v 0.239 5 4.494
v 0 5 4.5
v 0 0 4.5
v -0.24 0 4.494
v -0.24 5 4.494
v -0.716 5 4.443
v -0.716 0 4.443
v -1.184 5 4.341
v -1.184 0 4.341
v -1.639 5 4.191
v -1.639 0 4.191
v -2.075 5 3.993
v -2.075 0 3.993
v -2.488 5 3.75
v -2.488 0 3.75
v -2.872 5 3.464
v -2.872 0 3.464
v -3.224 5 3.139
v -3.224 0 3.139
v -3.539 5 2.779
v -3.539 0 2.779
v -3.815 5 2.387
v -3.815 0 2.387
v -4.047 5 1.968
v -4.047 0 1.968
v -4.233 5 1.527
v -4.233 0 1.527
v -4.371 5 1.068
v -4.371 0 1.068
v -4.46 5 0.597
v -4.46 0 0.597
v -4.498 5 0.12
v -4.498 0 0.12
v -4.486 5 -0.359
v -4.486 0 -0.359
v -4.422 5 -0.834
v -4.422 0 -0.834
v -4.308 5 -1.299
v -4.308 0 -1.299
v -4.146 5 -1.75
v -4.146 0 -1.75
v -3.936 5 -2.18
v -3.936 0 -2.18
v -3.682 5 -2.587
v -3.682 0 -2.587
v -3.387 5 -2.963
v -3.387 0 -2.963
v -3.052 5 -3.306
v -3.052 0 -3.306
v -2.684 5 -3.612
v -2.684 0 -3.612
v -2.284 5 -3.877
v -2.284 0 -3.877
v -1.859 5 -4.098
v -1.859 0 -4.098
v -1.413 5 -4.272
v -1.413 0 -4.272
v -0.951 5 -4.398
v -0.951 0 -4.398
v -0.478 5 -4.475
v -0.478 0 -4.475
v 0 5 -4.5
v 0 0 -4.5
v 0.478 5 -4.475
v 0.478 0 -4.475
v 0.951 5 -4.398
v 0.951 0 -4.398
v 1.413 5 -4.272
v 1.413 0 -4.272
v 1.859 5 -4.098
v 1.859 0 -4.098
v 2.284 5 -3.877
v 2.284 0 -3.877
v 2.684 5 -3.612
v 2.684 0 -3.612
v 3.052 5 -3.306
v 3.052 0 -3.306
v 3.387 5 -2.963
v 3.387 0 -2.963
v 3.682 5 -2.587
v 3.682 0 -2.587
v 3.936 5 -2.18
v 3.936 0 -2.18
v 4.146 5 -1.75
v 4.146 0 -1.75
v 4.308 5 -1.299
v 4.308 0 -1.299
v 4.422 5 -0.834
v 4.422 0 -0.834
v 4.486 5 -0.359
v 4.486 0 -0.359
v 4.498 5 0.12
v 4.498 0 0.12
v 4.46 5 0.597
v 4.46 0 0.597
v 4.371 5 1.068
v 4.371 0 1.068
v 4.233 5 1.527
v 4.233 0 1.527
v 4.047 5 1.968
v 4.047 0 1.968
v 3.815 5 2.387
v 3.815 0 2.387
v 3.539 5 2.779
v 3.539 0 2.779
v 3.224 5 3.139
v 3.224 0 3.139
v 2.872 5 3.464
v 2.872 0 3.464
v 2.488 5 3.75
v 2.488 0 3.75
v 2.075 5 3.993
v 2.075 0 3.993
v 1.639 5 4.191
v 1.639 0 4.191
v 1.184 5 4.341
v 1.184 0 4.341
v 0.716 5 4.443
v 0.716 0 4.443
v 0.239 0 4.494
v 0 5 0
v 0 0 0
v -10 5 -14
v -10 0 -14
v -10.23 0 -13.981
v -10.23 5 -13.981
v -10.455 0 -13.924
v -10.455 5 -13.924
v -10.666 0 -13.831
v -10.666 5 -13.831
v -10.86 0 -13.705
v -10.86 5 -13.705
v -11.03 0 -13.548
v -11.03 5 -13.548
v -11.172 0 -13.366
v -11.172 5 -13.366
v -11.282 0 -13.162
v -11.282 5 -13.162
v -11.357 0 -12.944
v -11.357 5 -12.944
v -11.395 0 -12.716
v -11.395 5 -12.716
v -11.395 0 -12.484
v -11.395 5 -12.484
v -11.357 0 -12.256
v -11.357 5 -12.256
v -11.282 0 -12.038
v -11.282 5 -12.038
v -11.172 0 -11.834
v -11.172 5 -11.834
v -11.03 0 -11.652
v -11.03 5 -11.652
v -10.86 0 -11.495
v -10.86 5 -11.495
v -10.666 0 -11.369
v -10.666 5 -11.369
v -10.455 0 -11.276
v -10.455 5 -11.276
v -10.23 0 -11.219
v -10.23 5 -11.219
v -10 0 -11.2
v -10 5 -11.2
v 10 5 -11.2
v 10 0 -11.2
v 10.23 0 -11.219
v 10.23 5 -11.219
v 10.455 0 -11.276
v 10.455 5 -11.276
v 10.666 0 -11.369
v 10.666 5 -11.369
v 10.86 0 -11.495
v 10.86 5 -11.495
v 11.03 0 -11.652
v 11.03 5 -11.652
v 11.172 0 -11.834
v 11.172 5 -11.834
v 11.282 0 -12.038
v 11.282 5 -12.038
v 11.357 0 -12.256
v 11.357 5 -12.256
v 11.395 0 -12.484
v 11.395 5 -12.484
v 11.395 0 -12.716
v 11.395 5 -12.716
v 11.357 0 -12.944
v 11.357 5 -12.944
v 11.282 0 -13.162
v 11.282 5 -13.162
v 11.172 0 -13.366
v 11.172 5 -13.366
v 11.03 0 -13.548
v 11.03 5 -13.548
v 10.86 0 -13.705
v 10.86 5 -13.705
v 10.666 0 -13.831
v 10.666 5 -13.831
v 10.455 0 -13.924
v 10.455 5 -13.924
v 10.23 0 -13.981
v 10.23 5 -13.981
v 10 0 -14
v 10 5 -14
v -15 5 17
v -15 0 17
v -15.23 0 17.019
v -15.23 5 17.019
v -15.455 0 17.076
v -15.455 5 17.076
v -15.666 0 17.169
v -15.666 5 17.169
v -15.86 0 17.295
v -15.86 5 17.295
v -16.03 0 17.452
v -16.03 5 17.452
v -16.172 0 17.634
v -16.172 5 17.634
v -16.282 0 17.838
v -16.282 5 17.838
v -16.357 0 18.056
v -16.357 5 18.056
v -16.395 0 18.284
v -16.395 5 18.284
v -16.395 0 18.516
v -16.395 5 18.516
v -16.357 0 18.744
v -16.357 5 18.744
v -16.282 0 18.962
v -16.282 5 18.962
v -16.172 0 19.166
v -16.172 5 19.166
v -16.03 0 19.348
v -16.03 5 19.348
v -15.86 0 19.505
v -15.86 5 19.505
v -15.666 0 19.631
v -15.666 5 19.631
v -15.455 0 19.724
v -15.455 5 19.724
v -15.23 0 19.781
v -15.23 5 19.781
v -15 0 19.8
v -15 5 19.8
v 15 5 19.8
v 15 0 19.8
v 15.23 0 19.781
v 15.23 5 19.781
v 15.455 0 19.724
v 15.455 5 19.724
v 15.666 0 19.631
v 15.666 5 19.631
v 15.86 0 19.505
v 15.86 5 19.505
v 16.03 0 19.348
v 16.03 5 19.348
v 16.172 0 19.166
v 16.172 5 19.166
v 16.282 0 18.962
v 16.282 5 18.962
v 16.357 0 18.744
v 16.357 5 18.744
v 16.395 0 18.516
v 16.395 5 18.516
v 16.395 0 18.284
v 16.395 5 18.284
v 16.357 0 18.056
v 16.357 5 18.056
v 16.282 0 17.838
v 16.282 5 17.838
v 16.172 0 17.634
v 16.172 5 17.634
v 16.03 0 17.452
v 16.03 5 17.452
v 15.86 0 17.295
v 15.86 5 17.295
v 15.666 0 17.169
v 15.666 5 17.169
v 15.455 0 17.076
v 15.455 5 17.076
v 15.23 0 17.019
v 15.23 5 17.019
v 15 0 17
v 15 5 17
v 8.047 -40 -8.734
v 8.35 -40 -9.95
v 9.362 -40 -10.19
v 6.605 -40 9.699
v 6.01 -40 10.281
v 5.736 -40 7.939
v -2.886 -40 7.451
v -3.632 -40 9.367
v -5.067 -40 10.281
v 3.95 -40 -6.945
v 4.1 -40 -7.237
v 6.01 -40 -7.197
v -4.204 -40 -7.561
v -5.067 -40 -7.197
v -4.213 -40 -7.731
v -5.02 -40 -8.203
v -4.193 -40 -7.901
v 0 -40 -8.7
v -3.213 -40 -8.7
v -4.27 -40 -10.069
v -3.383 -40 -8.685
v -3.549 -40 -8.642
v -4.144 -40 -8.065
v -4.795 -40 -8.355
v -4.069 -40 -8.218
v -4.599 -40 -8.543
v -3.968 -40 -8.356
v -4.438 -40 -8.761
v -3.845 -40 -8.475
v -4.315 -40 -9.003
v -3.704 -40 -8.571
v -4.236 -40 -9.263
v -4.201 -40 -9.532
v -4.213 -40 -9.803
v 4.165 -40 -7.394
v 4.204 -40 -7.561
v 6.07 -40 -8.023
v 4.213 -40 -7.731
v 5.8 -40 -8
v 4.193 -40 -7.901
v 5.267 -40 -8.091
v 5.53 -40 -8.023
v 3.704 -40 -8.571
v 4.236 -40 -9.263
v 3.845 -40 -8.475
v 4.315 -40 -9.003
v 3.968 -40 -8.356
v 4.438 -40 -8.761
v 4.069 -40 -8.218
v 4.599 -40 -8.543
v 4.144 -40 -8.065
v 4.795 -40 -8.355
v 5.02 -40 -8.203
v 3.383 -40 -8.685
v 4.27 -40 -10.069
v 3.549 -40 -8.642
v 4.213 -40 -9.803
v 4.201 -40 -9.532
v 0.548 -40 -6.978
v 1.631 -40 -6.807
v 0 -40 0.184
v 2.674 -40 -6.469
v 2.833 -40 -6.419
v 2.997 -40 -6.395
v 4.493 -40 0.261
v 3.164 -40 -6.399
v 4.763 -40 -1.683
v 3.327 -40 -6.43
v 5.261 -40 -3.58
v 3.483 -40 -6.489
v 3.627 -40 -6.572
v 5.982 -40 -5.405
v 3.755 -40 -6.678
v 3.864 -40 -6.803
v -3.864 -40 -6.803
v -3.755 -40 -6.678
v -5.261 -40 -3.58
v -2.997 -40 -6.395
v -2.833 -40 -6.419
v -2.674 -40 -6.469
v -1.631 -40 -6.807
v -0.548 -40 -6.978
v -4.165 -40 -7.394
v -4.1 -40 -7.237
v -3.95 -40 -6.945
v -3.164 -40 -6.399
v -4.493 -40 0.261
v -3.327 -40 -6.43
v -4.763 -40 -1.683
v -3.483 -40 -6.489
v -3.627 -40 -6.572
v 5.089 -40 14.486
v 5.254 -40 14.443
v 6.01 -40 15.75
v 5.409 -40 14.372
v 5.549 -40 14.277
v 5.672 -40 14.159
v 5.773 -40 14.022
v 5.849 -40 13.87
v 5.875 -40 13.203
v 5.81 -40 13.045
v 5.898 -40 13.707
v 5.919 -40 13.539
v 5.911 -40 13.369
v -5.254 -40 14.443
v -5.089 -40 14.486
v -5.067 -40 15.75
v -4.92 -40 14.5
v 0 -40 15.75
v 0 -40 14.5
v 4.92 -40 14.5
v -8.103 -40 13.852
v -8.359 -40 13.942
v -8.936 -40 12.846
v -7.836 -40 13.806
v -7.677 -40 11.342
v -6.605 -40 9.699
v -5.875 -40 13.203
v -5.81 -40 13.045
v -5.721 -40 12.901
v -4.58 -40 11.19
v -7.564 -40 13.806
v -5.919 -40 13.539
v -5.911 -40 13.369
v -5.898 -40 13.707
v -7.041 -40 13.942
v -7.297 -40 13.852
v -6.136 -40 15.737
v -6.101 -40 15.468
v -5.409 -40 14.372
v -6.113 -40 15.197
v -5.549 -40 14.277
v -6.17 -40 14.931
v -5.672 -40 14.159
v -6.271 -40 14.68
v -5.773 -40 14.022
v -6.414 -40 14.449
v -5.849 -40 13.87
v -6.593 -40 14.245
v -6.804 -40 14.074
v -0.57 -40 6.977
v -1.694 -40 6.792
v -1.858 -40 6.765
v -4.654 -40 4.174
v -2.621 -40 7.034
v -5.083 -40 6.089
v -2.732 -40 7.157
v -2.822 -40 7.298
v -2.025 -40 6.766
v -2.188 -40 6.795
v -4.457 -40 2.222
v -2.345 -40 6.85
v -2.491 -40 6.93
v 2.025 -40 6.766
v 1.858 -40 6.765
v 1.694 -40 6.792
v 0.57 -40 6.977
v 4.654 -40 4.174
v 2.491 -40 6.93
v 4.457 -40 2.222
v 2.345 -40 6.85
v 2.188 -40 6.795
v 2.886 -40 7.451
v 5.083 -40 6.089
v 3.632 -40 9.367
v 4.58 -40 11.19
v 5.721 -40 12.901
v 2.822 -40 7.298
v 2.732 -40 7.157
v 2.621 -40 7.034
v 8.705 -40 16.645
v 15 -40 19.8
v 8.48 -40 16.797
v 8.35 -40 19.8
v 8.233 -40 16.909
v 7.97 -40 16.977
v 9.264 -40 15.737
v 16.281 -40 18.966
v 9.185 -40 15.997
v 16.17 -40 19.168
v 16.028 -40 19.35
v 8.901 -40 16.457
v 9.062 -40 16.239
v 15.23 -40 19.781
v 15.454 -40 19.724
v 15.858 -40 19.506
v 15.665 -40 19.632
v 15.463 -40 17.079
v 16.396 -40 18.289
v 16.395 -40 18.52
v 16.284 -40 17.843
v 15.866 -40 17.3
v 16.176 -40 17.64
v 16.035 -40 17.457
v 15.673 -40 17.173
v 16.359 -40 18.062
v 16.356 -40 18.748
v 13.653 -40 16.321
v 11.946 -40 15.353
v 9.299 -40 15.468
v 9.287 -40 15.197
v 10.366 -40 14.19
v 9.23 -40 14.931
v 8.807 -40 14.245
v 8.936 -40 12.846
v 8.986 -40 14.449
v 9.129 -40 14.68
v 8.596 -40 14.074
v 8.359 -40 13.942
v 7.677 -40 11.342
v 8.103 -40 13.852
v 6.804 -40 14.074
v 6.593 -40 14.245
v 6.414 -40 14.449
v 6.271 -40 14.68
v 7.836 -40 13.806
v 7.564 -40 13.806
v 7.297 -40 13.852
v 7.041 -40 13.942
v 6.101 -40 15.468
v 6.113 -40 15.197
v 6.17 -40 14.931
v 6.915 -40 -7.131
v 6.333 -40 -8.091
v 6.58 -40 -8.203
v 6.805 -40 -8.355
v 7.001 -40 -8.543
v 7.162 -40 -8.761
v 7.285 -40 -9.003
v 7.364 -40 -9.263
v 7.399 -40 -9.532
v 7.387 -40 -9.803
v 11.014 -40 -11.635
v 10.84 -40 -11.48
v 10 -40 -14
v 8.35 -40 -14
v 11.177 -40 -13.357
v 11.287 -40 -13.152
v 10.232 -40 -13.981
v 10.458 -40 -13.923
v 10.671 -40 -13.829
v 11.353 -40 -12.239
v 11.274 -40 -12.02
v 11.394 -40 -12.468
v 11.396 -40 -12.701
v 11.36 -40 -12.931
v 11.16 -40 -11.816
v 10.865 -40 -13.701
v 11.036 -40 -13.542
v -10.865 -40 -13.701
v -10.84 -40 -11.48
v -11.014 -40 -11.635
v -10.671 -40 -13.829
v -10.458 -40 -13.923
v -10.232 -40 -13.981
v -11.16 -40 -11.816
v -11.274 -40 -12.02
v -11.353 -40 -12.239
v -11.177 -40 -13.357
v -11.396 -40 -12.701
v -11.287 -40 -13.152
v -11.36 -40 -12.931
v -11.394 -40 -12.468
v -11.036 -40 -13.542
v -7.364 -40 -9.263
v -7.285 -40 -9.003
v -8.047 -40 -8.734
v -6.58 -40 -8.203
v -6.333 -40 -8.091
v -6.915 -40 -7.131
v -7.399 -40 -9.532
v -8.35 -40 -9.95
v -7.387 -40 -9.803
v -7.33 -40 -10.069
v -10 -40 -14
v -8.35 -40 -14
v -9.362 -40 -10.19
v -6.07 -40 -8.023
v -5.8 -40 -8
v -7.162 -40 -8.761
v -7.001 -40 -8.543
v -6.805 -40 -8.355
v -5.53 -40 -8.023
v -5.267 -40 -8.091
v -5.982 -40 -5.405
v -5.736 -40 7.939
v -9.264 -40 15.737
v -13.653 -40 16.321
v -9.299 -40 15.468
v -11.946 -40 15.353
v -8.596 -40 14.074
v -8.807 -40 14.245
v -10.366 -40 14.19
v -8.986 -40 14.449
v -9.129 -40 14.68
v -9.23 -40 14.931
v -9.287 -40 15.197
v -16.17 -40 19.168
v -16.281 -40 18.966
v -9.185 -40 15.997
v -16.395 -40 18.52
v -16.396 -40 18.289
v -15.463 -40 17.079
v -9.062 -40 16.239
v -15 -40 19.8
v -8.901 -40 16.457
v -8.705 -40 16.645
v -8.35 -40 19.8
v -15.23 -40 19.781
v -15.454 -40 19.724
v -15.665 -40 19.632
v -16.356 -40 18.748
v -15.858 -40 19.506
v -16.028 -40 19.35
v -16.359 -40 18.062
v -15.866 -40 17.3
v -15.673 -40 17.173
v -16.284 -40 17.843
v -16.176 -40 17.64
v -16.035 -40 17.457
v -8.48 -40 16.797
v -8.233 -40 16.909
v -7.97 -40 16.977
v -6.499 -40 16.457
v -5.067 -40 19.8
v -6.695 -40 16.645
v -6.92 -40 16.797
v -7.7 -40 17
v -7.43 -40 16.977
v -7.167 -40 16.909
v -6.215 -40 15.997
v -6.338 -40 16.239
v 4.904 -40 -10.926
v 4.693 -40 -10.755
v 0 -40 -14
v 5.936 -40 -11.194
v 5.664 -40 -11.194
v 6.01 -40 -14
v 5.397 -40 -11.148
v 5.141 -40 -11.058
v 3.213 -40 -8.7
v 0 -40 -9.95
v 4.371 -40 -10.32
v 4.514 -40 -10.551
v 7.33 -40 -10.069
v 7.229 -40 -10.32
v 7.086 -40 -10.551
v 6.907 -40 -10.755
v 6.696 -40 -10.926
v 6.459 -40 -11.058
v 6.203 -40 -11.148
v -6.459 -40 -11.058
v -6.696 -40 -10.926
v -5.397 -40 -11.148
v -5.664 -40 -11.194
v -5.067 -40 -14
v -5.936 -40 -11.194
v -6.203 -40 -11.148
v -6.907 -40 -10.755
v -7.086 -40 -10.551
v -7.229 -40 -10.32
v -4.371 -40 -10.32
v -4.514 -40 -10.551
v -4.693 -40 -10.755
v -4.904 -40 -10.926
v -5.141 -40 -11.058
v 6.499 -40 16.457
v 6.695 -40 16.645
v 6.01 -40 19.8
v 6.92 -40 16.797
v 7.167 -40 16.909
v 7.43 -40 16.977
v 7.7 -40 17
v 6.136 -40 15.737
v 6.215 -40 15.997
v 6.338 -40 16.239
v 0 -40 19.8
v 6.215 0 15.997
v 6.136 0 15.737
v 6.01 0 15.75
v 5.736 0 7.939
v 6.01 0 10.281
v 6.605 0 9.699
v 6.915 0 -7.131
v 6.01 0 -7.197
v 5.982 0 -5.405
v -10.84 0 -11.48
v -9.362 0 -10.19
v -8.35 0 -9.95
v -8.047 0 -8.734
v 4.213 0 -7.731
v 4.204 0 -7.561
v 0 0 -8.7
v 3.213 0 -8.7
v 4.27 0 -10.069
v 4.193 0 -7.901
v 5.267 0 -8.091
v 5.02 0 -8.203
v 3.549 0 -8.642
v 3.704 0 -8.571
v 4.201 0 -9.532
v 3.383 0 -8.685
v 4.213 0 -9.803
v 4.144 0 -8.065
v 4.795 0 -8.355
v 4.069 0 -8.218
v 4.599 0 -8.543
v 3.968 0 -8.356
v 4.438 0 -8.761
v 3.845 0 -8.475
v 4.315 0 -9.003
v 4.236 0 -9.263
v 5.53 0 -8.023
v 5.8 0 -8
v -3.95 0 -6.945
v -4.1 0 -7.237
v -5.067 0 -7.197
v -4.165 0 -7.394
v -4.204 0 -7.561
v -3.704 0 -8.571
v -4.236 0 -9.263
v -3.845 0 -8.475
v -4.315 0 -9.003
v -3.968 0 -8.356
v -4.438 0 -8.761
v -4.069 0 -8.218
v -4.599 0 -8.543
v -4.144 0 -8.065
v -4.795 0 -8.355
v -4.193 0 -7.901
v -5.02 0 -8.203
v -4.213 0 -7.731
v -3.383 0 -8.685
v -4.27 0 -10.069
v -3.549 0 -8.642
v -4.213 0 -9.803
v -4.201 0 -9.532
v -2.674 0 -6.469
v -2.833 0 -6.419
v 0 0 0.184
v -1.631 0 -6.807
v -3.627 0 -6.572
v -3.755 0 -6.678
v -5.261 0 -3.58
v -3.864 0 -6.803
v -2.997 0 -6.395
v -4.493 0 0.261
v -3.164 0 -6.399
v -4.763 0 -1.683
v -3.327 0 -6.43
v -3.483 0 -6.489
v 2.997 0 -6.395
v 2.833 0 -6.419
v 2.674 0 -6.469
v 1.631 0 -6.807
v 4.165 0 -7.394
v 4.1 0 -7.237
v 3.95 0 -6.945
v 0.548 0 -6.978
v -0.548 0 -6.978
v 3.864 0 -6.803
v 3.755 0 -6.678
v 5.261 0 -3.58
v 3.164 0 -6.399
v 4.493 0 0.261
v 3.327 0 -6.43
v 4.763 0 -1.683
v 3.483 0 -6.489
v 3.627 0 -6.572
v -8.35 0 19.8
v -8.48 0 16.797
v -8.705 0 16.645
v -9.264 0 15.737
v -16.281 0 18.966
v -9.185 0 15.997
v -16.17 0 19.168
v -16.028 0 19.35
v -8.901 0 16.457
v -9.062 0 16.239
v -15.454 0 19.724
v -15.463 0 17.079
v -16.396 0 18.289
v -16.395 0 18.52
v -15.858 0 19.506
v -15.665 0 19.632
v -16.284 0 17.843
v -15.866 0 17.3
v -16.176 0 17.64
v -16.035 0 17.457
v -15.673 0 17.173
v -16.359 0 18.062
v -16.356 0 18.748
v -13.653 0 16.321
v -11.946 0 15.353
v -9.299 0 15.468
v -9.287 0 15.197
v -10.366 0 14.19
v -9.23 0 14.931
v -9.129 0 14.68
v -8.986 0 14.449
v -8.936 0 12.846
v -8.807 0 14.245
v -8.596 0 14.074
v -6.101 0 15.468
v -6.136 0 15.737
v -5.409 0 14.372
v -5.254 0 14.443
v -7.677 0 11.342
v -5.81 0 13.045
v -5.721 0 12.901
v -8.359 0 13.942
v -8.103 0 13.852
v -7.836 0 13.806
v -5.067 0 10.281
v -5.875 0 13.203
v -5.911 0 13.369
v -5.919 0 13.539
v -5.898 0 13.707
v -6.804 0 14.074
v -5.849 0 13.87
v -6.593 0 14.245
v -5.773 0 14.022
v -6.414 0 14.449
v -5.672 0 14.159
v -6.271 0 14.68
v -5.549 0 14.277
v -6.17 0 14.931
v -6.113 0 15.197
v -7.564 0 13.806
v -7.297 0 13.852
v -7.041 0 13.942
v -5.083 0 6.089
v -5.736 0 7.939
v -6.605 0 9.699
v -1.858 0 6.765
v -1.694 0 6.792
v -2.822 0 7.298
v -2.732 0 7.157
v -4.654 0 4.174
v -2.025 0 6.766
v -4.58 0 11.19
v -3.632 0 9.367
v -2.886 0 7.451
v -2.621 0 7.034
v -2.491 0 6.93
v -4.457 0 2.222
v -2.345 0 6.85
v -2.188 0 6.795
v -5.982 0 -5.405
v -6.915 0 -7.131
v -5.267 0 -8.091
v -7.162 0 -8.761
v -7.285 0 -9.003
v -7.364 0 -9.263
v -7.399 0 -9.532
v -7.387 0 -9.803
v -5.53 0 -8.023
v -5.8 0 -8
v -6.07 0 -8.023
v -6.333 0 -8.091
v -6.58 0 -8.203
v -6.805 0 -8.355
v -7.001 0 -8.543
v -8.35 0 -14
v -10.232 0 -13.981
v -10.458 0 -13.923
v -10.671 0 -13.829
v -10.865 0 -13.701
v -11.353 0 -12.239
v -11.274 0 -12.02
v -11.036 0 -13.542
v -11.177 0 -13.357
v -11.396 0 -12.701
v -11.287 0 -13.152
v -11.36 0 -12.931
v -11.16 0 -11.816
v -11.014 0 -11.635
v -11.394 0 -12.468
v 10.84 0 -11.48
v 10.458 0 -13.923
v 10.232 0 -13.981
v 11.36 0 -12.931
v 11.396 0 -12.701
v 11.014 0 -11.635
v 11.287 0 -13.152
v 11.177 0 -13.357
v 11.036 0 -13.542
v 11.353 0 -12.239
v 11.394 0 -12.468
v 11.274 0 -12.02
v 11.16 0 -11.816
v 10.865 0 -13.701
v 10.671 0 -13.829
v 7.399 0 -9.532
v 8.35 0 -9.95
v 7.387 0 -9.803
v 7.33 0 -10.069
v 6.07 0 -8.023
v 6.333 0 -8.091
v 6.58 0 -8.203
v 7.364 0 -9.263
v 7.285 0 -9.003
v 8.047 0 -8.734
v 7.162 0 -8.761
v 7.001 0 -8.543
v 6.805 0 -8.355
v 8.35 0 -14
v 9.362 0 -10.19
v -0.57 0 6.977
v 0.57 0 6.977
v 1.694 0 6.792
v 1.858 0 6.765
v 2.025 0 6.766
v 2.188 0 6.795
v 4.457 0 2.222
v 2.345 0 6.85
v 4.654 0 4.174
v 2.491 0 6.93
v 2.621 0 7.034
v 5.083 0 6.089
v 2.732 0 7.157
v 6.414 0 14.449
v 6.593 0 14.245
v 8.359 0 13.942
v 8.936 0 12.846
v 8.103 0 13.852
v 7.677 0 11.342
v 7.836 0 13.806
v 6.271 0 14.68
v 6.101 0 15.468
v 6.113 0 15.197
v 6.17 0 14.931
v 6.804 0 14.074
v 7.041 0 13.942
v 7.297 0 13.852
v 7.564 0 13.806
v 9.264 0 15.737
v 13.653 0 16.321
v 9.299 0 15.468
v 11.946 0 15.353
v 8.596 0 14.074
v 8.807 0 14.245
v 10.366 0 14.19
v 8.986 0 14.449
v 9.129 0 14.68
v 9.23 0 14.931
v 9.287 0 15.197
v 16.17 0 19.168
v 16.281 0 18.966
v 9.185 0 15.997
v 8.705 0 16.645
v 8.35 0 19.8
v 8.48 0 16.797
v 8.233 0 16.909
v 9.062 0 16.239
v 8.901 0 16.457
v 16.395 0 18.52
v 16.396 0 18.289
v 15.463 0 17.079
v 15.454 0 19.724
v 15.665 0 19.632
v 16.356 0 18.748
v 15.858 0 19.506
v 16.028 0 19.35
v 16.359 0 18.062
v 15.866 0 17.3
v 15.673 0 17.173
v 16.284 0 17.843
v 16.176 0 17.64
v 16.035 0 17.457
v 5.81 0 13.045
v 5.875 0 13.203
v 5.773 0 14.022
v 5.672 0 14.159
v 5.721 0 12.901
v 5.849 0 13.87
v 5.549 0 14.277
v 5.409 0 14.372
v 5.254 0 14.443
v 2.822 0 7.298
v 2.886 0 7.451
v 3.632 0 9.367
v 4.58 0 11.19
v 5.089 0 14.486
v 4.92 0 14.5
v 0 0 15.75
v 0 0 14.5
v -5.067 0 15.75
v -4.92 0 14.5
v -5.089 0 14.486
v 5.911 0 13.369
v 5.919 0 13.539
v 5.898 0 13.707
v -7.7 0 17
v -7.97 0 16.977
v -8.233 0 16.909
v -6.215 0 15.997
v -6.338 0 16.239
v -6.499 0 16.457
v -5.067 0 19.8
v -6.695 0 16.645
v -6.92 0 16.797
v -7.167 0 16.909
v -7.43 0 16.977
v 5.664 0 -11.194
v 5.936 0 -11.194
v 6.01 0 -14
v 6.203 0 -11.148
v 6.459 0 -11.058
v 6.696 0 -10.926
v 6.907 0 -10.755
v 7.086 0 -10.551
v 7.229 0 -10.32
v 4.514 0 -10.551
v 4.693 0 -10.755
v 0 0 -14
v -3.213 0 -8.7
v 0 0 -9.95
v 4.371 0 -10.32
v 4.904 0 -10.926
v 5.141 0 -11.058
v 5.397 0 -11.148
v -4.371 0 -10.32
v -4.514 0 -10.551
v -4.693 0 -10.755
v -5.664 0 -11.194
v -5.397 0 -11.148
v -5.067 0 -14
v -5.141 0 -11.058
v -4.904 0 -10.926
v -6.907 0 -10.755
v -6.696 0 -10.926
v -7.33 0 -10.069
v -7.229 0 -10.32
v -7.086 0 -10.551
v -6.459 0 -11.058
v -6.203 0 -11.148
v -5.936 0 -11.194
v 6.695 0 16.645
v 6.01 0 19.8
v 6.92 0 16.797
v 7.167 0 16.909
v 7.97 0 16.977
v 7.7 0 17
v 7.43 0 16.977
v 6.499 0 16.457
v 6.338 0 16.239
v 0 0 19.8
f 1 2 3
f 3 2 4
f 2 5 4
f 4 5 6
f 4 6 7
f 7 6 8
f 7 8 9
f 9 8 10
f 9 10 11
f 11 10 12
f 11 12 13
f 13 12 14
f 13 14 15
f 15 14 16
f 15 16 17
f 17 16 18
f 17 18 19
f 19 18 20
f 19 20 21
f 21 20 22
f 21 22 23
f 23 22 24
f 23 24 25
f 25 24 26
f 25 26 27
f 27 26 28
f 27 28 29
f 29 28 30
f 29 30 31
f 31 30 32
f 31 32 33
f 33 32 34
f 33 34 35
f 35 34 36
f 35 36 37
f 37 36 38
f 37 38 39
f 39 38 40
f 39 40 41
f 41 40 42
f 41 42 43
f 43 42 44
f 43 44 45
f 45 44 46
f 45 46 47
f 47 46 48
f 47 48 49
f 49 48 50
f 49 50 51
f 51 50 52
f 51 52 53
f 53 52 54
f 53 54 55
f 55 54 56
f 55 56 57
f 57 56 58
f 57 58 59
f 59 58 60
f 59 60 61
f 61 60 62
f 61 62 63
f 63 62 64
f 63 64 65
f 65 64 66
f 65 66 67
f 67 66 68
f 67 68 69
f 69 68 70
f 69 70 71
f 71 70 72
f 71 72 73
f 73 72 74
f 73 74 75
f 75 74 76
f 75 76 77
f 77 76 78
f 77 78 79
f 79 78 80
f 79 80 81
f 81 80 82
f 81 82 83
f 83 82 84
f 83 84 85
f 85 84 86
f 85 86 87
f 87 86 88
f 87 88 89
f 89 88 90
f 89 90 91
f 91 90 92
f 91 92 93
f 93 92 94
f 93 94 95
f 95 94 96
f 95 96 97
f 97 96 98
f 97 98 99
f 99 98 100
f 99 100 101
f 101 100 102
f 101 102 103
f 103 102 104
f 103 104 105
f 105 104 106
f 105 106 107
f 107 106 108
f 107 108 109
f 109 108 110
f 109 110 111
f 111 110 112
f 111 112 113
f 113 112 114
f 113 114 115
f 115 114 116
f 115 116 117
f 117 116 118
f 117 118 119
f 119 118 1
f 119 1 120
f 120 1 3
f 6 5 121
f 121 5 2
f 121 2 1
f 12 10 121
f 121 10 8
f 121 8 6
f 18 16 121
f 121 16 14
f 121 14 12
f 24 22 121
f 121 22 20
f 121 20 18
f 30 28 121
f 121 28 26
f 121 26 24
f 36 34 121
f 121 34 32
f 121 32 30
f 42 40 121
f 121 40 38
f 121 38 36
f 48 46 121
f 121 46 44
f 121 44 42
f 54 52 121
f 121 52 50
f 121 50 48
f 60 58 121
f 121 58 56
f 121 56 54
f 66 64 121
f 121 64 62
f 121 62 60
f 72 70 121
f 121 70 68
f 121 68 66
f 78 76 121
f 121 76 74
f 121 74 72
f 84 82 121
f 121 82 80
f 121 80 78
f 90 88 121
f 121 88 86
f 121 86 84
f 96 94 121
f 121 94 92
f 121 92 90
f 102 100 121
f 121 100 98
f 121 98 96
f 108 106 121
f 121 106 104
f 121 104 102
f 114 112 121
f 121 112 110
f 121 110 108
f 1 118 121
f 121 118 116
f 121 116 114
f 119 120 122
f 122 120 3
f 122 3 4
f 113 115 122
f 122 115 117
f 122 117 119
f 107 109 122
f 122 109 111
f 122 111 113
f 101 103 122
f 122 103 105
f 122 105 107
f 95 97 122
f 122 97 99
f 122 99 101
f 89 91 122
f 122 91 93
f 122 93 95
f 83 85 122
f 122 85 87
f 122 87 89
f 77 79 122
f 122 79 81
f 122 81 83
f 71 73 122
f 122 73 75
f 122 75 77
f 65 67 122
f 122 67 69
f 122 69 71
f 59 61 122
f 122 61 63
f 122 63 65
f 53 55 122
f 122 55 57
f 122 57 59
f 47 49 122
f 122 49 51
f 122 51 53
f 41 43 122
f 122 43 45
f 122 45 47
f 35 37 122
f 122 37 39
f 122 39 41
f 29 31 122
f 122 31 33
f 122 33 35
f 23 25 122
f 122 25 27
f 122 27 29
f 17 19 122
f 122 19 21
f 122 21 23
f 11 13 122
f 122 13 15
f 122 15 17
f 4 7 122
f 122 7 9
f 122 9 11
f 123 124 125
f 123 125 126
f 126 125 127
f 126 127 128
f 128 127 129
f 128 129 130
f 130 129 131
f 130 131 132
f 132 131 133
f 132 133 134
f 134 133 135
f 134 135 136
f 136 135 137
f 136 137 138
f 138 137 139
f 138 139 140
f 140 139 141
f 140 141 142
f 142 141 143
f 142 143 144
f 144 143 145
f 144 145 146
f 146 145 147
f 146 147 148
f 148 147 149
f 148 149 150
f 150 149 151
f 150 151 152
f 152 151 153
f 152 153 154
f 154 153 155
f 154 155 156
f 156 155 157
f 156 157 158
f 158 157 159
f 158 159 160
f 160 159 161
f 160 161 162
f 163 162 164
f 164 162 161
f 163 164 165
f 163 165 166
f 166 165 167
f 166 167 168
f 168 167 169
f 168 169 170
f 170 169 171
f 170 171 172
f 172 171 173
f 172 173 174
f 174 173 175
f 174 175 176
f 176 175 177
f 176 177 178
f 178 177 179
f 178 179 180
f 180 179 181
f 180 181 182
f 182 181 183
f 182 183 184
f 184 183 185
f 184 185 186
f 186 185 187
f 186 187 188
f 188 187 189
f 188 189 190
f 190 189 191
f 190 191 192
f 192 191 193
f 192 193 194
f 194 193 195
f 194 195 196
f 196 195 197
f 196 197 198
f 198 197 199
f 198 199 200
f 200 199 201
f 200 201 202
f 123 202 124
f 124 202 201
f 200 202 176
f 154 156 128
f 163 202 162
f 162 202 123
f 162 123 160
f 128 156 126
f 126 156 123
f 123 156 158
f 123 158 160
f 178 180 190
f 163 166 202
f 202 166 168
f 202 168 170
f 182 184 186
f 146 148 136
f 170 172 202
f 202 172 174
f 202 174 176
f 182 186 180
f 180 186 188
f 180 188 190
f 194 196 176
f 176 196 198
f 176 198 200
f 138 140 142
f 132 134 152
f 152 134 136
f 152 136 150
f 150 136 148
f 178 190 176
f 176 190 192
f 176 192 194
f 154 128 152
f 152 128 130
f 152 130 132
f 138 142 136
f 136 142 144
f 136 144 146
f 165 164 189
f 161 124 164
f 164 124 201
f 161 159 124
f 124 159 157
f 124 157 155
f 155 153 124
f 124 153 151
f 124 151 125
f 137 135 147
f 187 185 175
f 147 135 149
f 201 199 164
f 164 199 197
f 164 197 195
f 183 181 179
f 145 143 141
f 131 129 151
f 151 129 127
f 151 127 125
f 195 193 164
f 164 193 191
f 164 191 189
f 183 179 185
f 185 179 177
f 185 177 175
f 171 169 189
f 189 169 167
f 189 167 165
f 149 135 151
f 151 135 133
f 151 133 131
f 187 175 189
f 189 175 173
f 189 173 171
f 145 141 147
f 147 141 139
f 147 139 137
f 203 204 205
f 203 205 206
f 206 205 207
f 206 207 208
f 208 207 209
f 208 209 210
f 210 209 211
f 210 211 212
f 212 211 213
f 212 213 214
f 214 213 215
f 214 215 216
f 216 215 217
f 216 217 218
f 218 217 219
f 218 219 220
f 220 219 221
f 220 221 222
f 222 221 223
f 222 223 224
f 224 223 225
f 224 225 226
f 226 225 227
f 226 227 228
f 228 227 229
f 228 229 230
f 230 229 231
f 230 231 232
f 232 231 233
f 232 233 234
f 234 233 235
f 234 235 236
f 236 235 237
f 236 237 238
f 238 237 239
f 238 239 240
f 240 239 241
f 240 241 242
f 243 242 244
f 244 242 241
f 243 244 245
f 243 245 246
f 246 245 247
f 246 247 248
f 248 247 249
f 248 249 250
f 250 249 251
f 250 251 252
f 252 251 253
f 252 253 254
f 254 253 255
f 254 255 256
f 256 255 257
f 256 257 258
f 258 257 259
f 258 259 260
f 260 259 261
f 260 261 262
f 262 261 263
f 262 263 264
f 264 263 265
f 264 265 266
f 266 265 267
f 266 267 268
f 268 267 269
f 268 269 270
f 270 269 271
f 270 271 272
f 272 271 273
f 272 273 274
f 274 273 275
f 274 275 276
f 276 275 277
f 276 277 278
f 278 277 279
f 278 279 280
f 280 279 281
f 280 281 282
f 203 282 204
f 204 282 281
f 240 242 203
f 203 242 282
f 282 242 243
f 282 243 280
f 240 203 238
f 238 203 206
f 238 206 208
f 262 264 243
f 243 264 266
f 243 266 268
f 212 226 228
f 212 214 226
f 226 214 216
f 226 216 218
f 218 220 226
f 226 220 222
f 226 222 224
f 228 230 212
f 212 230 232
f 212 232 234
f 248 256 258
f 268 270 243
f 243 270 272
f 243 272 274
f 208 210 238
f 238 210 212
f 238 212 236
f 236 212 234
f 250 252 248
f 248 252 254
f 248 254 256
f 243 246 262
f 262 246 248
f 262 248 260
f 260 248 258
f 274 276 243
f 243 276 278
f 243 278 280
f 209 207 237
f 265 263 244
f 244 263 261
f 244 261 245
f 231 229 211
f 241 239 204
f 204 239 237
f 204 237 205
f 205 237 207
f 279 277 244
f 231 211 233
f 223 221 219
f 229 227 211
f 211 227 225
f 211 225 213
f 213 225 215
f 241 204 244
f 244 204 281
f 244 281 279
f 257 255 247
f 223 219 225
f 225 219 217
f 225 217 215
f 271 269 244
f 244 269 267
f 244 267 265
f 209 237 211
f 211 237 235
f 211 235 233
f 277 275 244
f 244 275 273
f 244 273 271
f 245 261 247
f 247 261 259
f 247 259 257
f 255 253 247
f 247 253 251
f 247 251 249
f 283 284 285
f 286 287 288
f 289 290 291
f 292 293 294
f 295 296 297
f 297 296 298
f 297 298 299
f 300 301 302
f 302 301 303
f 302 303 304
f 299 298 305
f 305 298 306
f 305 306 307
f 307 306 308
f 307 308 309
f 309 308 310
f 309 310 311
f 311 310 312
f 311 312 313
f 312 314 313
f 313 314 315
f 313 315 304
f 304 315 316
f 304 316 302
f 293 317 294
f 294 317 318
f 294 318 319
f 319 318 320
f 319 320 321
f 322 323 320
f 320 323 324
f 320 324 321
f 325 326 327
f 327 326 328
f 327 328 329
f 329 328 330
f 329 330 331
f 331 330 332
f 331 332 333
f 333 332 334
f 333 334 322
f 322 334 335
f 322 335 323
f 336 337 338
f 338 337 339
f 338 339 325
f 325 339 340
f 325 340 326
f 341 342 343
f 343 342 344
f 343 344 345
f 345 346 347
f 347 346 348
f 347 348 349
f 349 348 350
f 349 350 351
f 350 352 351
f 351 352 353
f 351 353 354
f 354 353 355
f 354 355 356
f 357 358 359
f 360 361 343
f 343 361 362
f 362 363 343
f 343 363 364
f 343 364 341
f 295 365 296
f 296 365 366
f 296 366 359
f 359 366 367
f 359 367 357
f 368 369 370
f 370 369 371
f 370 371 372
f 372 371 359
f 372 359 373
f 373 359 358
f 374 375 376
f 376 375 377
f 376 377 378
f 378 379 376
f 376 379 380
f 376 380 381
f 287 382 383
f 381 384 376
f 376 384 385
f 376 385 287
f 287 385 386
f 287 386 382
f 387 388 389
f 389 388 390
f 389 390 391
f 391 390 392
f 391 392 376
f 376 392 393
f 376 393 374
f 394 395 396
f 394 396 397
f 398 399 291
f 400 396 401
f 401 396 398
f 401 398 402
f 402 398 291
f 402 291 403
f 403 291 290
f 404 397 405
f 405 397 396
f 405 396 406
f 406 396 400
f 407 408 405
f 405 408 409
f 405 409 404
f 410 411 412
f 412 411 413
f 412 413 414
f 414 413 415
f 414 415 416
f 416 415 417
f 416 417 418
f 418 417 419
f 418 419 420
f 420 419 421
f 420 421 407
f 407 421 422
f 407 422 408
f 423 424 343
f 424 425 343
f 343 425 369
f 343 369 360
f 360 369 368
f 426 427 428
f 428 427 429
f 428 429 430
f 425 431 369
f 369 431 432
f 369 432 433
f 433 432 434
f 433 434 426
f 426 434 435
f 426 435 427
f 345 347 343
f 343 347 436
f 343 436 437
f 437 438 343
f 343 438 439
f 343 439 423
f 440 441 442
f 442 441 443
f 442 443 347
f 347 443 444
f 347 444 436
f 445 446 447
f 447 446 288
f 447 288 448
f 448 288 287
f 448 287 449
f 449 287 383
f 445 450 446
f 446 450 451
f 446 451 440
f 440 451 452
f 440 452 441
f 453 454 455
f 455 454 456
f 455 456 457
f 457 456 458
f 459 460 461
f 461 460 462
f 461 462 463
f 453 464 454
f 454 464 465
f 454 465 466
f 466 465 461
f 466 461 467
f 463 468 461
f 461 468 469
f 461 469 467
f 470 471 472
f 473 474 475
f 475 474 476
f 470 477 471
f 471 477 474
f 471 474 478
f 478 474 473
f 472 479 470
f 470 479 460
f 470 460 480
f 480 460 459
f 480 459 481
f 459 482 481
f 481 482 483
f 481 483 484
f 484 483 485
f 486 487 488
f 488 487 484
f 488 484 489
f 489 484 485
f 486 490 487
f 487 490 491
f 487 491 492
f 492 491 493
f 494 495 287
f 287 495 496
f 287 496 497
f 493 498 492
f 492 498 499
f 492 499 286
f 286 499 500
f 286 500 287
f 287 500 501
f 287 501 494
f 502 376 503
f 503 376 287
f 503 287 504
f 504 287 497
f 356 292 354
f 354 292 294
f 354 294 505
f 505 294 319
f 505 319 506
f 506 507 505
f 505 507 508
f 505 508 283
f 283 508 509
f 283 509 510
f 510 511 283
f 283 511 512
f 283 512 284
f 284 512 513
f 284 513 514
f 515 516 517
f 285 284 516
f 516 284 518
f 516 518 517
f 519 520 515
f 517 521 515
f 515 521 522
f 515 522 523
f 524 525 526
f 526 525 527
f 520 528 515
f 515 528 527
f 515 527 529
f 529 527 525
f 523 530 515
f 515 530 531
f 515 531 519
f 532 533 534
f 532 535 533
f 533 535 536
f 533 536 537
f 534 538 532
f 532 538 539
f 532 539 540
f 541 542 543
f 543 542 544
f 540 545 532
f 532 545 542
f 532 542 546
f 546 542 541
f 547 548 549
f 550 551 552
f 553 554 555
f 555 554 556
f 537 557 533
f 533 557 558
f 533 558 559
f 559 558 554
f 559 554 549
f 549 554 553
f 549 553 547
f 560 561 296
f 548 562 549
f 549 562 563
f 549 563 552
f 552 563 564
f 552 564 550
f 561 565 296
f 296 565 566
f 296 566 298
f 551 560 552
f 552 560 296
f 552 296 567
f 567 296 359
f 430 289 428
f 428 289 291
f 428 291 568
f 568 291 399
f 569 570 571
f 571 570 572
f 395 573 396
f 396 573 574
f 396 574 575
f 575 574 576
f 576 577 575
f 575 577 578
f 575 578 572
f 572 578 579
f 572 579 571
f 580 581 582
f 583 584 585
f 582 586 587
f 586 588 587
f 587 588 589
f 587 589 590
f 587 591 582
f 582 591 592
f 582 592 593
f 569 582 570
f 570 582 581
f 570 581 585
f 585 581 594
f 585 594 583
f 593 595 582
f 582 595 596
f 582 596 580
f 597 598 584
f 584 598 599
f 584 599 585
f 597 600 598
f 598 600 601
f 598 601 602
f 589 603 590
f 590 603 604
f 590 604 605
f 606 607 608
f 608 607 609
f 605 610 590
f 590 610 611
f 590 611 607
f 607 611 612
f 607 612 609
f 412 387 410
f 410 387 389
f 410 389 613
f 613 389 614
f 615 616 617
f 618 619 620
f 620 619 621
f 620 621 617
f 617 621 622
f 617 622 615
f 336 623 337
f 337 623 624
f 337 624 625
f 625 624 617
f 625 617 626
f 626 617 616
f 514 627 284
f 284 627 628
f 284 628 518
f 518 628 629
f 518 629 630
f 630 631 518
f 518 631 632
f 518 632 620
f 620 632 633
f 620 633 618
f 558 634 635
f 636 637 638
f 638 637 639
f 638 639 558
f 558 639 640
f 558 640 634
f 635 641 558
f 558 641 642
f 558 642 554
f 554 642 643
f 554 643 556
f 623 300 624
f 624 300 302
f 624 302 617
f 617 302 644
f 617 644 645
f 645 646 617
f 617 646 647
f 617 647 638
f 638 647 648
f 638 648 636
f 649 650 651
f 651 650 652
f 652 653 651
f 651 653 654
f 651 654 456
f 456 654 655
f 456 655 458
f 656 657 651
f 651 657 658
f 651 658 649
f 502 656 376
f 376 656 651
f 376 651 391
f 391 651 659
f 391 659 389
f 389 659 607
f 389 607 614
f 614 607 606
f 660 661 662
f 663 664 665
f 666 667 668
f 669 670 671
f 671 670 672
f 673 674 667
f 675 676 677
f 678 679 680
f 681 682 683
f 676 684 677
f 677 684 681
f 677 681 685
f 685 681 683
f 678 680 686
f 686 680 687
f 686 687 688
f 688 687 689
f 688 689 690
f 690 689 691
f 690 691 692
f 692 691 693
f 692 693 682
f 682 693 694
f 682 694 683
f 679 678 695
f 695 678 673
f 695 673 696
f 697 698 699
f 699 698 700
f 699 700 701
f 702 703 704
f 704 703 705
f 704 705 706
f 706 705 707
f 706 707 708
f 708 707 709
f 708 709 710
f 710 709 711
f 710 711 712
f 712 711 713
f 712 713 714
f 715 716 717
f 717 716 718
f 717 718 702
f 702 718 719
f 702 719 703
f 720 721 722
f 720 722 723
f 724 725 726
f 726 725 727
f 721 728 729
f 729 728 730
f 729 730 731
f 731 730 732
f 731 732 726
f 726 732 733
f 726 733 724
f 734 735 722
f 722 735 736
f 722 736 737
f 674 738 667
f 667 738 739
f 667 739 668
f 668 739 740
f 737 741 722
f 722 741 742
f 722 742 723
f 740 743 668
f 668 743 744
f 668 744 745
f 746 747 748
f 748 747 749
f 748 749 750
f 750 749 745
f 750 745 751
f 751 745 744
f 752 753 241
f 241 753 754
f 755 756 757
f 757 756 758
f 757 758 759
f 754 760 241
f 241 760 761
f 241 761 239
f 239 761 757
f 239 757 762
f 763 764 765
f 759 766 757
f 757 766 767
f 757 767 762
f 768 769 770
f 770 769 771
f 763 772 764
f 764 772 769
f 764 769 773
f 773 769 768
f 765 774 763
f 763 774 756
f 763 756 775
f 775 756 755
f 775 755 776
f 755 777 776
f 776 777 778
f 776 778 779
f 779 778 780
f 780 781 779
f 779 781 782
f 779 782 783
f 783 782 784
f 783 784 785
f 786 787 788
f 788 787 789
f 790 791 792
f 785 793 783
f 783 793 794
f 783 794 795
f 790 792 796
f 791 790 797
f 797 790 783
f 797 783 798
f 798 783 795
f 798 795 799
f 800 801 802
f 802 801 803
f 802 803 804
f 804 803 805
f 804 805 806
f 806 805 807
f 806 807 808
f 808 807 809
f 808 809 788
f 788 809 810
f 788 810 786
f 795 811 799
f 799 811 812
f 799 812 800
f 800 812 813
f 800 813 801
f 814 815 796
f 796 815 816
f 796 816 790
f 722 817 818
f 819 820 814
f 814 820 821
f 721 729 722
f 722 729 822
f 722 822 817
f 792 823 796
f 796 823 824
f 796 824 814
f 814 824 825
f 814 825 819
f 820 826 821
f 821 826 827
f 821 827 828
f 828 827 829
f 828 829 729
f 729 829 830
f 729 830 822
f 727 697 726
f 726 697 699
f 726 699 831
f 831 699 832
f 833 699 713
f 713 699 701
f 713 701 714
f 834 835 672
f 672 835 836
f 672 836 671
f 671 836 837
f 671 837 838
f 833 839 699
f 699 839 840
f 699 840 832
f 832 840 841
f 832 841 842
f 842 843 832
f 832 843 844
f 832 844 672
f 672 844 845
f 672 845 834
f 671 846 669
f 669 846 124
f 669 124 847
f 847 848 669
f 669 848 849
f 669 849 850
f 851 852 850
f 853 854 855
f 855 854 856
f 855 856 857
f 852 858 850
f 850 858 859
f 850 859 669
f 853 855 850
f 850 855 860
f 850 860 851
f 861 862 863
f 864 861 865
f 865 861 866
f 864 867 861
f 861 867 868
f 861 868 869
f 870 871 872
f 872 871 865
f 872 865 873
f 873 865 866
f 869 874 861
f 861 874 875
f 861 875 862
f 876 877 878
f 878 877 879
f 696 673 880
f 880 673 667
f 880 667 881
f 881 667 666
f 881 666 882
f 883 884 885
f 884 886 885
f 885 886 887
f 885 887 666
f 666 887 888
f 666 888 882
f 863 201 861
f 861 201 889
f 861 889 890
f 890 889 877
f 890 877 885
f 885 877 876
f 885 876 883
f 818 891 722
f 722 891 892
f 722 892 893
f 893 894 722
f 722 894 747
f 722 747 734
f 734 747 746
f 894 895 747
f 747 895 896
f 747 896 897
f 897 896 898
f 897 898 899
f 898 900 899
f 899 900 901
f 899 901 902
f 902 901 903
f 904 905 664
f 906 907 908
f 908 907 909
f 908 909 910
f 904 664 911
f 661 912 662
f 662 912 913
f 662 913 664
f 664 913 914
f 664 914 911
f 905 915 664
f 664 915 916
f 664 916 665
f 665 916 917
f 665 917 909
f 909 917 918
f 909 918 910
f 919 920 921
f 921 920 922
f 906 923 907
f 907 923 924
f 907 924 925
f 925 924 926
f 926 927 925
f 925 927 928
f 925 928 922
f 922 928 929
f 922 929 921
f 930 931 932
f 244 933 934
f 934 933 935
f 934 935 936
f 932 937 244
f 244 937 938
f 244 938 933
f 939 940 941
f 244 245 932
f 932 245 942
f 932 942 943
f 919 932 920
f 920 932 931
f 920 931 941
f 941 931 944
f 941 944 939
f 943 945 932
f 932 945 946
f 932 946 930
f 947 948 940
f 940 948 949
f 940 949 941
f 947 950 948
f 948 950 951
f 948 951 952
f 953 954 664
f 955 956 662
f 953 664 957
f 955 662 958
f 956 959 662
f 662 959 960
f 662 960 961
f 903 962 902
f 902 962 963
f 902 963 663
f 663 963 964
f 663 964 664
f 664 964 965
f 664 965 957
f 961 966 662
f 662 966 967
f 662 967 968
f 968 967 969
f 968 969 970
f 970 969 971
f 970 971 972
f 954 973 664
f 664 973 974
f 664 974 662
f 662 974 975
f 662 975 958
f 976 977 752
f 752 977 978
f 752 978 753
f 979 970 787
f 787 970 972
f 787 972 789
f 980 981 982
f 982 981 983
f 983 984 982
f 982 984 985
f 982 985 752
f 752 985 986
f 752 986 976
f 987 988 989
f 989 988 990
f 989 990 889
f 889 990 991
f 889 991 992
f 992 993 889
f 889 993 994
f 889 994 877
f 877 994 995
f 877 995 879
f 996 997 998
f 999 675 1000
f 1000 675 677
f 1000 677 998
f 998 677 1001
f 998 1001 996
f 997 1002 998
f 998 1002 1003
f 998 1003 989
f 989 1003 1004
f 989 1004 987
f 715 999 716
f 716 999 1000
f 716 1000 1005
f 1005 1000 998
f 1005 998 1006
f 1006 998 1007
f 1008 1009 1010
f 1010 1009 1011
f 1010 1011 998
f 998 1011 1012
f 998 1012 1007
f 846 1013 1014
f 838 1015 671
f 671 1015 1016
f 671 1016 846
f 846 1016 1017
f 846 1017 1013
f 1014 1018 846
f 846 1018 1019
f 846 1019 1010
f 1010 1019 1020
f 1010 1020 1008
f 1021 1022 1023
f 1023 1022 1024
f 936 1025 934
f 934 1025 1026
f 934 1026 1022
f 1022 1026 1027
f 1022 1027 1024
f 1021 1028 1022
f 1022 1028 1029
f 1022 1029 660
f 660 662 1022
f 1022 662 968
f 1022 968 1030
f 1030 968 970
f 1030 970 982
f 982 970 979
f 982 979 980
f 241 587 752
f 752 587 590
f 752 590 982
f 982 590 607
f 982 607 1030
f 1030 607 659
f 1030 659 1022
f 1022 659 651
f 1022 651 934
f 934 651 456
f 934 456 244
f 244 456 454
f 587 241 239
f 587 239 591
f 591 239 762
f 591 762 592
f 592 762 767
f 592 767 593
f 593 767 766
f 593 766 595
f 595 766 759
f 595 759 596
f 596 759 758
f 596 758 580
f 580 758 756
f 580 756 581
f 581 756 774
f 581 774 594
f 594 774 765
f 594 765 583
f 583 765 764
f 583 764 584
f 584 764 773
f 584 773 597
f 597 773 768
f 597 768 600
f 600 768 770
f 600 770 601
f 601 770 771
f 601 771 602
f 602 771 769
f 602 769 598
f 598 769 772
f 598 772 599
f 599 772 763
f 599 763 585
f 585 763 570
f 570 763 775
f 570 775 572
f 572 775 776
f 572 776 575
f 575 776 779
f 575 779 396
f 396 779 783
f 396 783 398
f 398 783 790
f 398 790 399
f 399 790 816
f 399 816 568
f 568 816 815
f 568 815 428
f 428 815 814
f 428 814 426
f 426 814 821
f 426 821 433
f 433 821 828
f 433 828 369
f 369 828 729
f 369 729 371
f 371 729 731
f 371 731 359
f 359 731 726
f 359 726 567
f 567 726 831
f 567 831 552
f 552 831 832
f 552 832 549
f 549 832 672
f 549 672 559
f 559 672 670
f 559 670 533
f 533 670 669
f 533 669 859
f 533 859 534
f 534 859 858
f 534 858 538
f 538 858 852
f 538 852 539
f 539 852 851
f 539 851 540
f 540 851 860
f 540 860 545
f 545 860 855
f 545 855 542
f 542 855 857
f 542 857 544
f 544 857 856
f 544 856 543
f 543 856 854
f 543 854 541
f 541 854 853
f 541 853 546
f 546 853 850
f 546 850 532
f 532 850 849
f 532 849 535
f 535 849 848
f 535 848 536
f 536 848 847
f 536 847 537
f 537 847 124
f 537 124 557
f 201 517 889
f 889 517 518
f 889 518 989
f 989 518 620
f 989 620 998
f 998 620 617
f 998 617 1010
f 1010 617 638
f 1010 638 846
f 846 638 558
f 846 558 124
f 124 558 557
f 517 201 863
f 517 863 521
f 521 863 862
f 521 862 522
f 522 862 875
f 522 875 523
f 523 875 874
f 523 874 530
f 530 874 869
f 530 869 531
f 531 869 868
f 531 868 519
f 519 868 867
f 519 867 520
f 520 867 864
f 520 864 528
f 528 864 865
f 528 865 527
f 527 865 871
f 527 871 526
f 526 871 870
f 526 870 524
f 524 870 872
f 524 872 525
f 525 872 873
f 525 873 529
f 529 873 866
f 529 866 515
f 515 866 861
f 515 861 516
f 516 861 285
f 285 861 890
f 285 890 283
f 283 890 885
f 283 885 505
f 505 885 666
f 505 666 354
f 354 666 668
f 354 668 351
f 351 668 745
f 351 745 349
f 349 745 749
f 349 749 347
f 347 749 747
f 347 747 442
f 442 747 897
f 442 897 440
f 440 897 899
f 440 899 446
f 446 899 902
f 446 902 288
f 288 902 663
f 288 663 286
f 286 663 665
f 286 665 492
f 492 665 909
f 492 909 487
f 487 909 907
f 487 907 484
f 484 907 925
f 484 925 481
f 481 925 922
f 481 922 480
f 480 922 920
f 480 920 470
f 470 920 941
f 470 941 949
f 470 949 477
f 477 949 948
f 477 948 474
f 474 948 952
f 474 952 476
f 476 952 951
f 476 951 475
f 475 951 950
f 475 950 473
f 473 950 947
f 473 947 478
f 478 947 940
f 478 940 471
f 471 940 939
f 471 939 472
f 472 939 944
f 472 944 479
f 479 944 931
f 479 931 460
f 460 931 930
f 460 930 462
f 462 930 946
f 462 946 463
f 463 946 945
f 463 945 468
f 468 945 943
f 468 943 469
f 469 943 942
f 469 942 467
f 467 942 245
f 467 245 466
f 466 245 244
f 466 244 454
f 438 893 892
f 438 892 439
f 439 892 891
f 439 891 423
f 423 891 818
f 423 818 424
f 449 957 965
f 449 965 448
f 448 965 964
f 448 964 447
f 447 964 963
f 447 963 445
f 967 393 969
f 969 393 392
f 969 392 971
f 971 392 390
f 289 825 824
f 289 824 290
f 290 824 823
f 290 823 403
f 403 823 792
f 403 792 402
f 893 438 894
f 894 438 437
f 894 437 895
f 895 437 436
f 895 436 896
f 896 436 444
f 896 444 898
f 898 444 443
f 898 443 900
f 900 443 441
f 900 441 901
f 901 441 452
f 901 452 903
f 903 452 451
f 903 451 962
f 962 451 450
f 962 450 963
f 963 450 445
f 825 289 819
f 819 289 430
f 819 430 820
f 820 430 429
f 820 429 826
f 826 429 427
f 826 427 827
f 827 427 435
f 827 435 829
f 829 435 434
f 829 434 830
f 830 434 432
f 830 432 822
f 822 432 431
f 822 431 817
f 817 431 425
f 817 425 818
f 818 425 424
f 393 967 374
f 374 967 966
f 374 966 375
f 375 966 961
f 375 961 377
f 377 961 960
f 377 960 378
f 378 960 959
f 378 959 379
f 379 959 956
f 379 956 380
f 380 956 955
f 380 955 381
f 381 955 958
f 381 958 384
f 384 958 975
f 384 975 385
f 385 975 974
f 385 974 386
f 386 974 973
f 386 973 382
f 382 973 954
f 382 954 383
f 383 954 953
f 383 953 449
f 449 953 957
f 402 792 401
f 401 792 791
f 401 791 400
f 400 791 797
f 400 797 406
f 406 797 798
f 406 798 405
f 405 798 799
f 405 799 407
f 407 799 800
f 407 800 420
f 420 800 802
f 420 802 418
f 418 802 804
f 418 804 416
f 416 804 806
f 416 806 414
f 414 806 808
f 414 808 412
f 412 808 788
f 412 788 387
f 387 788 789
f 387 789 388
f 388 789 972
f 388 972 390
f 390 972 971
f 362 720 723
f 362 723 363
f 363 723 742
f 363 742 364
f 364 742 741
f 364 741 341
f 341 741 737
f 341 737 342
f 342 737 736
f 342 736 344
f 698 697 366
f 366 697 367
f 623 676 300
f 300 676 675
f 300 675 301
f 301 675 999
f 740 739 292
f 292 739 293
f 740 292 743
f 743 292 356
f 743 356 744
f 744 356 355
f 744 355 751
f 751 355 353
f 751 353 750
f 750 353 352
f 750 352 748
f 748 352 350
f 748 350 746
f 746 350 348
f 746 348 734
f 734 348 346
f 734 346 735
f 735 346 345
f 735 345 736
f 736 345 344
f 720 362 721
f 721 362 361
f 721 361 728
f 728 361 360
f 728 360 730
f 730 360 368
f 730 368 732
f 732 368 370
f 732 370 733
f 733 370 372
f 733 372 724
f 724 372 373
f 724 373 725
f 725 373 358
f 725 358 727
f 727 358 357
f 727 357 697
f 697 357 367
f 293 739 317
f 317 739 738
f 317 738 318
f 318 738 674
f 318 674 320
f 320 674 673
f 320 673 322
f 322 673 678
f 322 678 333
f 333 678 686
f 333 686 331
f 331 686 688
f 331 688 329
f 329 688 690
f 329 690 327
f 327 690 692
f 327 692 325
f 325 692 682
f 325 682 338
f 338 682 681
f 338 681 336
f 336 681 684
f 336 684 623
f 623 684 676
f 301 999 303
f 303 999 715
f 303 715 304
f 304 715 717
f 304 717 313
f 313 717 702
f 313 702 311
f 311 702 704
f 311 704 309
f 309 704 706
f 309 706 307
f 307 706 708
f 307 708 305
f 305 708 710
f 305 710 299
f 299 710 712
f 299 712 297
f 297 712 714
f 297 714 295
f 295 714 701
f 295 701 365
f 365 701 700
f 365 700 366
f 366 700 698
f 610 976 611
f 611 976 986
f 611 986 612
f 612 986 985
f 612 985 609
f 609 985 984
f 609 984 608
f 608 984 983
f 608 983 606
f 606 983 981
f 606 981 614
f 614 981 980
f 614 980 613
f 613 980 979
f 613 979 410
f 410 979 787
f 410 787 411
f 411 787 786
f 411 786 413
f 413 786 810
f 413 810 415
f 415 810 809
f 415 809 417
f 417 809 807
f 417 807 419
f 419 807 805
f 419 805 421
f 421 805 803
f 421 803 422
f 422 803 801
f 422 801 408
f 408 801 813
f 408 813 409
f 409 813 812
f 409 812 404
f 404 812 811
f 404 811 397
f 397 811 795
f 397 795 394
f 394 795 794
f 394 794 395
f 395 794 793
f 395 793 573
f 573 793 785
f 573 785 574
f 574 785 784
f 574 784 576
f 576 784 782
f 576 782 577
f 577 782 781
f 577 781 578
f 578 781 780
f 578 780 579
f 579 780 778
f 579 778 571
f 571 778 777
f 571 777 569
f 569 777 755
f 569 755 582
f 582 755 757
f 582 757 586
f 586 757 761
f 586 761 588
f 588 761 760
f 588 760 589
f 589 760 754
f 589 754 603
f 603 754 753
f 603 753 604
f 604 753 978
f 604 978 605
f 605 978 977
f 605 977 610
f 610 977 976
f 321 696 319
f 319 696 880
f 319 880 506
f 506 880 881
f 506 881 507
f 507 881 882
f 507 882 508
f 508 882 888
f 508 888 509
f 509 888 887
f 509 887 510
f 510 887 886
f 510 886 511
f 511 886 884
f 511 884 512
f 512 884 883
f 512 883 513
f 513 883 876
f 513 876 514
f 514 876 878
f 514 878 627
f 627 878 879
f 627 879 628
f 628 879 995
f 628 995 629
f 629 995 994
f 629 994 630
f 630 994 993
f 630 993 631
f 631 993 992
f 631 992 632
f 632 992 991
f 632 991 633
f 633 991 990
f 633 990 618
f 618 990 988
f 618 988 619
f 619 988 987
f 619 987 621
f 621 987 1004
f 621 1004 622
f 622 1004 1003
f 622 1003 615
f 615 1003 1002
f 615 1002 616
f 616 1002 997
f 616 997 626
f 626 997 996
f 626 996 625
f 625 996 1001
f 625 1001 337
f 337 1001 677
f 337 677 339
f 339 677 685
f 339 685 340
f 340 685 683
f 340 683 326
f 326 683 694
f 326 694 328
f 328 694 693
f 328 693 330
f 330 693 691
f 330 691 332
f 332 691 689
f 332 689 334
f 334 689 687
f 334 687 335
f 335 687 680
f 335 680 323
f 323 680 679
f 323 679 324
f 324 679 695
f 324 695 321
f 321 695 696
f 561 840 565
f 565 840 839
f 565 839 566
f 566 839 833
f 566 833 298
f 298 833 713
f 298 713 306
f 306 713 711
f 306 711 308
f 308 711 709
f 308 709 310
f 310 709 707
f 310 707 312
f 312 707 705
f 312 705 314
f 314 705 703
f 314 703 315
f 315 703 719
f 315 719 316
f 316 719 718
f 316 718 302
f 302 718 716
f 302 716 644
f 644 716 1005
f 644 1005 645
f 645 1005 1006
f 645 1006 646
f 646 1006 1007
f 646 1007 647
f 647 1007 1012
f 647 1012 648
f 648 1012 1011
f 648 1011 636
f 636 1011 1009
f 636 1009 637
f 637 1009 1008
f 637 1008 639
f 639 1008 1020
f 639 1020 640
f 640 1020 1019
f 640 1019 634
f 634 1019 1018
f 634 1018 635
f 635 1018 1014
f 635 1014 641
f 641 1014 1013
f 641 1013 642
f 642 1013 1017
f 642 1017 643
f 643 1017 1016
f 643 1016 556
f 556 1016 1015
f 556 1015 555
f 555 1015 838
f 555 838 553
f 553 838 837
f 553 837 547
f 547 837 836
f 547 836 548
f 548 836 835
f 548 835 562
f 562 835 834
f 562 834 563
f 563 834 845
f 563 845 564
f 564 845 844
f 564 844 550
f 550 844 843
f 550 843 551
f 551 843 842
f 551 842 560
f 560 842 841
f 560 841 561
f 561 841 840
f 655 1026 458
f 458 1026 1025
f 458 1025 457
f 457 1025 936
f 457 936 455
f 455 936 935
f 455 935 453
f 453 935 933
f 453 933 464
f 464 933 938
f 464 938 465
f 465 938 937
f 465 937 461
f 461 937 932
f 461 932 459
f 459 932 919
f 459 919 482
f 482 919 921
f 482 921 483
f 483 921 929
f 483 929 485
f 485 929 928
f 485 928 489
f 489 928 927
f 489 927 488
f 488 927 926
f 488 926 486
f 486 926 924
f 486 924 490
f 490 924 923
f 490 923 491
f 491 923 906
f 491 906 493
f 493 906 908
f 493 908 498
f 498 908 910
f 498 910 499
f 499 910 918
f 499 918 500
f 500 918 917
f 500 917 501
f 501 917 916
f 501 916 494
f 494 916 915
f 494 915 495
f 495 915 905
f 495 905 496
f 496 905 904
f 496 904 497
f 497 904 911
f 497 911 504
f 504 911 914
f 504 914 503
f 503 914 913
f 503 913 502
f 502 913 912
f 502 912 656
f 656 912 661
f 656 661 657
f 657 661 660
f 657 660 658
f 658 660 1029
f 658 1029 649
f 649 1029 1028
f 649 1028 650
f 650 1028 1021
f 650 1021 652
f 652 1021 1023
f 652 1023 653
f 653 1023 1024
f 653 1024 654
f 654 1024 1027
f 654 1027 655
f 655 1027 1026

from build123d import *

# Parameters (mm, degrees)
SKETCH1_R             = 4.5
BOSS_EXTRUDE1_DEPTH   = 5
BOSS_EXTRUDE1_2_DEPTH = 5
BOSS_EXTRUDE1_3_DEPTH = 5
BOSS_EXTRUDE2_DEPTH   = 40
CUT_EXTRUDE1_DEPTH    = 48.549973712
FILLET1_R             = 1
CUT_EXTRUDE2_DEPTH    = 48.549973872
FILLET2_R             = 1
SKETCH5_R             = 1.6
CUT_EXTRUDE3_DEPTH    = 48.549973872


with BuildPart() as part:
    # Sketch1 → Boss-Extrude1 (new body)
    with BuildSketch(Plane(origin=(0, 0, 0), x_dir=(1, 0, 0), z_dir=(0, 1, 0))):
        with Locations(Location((0, 0, 0), (0, 0, 270))):
            Circle(SKETCH1_R)
    extrude(amount=BOSS_EXTRUDE1_DEPTH)


with BuildPart() as body_2:
    # Sketch1 → Boss-Extrude1 2 (new body)
    with BuildSketch(Plane(origin=(0, 0, 0), x_dir=(1, 0, 0), z_dir=(0, 1, 0))):
        with BuildLine():
            Line((-10, 14), (10, 14))
            ThreePointArc((10, 14), (11.4, 12.6), (10, 11.2))
            Line((10, 11.2), (-10, 11.2))
            ThreePointArc((-10, 11.2), (-11.4, 12.6), (-10, 14))
        make_face()
    extrude(amount=BOSS_EXTRUDE1_2_DEPTH)


with BuildPart() as body_3:
    # Sketch1 → Boss-Extrude1 3 (new body)
    with BuildSketch(Plane(origin=(0, 0, 0), x_dir=(1, 0, 0), z_dir=(0, 1, 0))):
        with BuildLine():
            Line((-15, -17), (15, -17))
            ThreePointArc((15, -17), (16.4, -18.4), (15, -19.8))
            Line((15, -19.8), (-15, -19.8))
            ThreePointArc((-15, -19.8), (-16.4, -18.4), (-15, -17))
        make_face()
    extrude(amount=BOSS_EXTRUDE1_3_DEPTH)


with BuildPart() as body_4:
    # Sketch2 → Boss-Extrude2 (new body)
    with BuildSketch(Plane.XZ):
        with BuildLine():
            Line((15, 19.8), (-15, 19.8))
            ThreePointArc((-15, 19.8), (-16.380197786, 18.634636041), (-15.462634492, 17.078648674))
            ThreePointArc((-15.462634492, 17.078648674), (-4.654417231, 4.174499379), (-10.840274527, -11.480205948))
            ThreePointArc((-10.840274527, -11.480205948), (-11.328102344, -13.042881658), (-10, -14))
            Line((-10, -14), (10, -14))
            ThreePointArc((10, -14), (11.328102344, -13.042881658), (10.840274527, -11.480205948))
            ThreePointArc((10.840274527, -11.480205948), (4.654417231, 4.174499379), (15.462634492, 17.078648674))
            ThreePointArc((15.462634492, 17.078648674), (16.380197786, 18.634636041), (15, 19.8))
        make_face()
    extrude(amount=BOSS_EXTRUDE2_DEPTH)

    # Sketch3 → Cut-Extrude1 (cut, through all)
    with BuildSketch(Plane(origin=(0, 0, 0), x_dir=(1, 0, 0), z_dir=(0, 1, 0))):
        with BuildLine():
            Line((-7.059953154, -14.5), (7.059953154, -14.5))
            ThreePointArc((7.059953154, -14.5), (4.34028867, -10.772593144), (2.60161457, -6.498584587))
            ThreePointArc((2.60161457, -6.498584587), (0, -7), (-2.60161457, -6.498584587))
            ThreePointArc((-2.60161457, -6.498584587), (-4.34028867, -10.772593144), (-7.059953154, -14.5))
        make_face()
    extrude(amount=-CUT_EXTRUDE1_DEPTH, mode=Mode.SUBTRACT)

    # Fillet1
    fillet1_edges = [body_4.edges().sort_by_distance(p)[0] for p in [
        (-2.60161457, -20, 6.498584587),
        (2.60161457, -20, 6.498584587),
        (7.059953154, -20, 14.5),
        (-7.059953154, -20, 14.5),
    ]]
    fillet(fillet1_edges, radius=FILLET1_R)

    # Sketch4 → Cut-Extrude2 (cut, through all)
    with BuildSketch(Plane(origin=(0, 0, 0), x_dir=(1, 0, 0), z_dir=(0, 1, 0))):
        with BuildLine():
            Line((4.949476545, 8.7), (-4.949476545, 8.7))
            ThreePointArc((-4.949476545, 8.7), (-4.186347115, 7.400983677), (-3.528776397, 6.04547245))
            ThreePointArc((-3.528776397, 6.04547245), (0, 7), (3.528776397, 6.04547245))
            ThreePointArc((3.528776397, 6.04547245), (4.186347115, 7.400983677), (4.949476545, 8.7))
        make_face()
    extrude(amount=-CUT_EXTRUDE2_DEPTH, mode=Mode.SUBTRACT)

    # Fillet2
    fillet2_edges = [body_4.edges().sort_by_distance(p)[0] for p in [
        (3.528776397, -20, -6.04547245),
        (-3.528776397, -20, -6.04547245),
        (-4.949476545, -20, -8.7),
        (4.949476545, -20, -8.7),
    ]]
    fillet(fillet2_edges, radius=FILLET2_R)

    # Sketch5 → Cut-Extrude3 (cut, through all)
    with BuildSketch(Plane(origin=(0, 0, 0), x_dir=(1, 0, 0), z_dir=(0, 1, 0))):
        with Locations(Location((-7.7, -15.4, 0), (0, 0, 270))):
            Circle(SKETCH5_R)
        with Locations(Location((7.7, -15.4, 0), (0, 0, 270))):
            Circle(SKETCH5_R)
        with Locations(Location((-5.8, 9.6, 0), (0, 0, 270))):
            Circle(SKETCH5_R)
        with Locations(Location((5.8, 9.6, 0), (0, 0, 270))):
            Circle(SKETCH5_R)
    extrude(amount=-CUT_EXTRUDE3_DEPTH, mode=Mode.SUBTRACT)


solid = Compound([part.part, body_2.part, body_3.part, body_4.part])
